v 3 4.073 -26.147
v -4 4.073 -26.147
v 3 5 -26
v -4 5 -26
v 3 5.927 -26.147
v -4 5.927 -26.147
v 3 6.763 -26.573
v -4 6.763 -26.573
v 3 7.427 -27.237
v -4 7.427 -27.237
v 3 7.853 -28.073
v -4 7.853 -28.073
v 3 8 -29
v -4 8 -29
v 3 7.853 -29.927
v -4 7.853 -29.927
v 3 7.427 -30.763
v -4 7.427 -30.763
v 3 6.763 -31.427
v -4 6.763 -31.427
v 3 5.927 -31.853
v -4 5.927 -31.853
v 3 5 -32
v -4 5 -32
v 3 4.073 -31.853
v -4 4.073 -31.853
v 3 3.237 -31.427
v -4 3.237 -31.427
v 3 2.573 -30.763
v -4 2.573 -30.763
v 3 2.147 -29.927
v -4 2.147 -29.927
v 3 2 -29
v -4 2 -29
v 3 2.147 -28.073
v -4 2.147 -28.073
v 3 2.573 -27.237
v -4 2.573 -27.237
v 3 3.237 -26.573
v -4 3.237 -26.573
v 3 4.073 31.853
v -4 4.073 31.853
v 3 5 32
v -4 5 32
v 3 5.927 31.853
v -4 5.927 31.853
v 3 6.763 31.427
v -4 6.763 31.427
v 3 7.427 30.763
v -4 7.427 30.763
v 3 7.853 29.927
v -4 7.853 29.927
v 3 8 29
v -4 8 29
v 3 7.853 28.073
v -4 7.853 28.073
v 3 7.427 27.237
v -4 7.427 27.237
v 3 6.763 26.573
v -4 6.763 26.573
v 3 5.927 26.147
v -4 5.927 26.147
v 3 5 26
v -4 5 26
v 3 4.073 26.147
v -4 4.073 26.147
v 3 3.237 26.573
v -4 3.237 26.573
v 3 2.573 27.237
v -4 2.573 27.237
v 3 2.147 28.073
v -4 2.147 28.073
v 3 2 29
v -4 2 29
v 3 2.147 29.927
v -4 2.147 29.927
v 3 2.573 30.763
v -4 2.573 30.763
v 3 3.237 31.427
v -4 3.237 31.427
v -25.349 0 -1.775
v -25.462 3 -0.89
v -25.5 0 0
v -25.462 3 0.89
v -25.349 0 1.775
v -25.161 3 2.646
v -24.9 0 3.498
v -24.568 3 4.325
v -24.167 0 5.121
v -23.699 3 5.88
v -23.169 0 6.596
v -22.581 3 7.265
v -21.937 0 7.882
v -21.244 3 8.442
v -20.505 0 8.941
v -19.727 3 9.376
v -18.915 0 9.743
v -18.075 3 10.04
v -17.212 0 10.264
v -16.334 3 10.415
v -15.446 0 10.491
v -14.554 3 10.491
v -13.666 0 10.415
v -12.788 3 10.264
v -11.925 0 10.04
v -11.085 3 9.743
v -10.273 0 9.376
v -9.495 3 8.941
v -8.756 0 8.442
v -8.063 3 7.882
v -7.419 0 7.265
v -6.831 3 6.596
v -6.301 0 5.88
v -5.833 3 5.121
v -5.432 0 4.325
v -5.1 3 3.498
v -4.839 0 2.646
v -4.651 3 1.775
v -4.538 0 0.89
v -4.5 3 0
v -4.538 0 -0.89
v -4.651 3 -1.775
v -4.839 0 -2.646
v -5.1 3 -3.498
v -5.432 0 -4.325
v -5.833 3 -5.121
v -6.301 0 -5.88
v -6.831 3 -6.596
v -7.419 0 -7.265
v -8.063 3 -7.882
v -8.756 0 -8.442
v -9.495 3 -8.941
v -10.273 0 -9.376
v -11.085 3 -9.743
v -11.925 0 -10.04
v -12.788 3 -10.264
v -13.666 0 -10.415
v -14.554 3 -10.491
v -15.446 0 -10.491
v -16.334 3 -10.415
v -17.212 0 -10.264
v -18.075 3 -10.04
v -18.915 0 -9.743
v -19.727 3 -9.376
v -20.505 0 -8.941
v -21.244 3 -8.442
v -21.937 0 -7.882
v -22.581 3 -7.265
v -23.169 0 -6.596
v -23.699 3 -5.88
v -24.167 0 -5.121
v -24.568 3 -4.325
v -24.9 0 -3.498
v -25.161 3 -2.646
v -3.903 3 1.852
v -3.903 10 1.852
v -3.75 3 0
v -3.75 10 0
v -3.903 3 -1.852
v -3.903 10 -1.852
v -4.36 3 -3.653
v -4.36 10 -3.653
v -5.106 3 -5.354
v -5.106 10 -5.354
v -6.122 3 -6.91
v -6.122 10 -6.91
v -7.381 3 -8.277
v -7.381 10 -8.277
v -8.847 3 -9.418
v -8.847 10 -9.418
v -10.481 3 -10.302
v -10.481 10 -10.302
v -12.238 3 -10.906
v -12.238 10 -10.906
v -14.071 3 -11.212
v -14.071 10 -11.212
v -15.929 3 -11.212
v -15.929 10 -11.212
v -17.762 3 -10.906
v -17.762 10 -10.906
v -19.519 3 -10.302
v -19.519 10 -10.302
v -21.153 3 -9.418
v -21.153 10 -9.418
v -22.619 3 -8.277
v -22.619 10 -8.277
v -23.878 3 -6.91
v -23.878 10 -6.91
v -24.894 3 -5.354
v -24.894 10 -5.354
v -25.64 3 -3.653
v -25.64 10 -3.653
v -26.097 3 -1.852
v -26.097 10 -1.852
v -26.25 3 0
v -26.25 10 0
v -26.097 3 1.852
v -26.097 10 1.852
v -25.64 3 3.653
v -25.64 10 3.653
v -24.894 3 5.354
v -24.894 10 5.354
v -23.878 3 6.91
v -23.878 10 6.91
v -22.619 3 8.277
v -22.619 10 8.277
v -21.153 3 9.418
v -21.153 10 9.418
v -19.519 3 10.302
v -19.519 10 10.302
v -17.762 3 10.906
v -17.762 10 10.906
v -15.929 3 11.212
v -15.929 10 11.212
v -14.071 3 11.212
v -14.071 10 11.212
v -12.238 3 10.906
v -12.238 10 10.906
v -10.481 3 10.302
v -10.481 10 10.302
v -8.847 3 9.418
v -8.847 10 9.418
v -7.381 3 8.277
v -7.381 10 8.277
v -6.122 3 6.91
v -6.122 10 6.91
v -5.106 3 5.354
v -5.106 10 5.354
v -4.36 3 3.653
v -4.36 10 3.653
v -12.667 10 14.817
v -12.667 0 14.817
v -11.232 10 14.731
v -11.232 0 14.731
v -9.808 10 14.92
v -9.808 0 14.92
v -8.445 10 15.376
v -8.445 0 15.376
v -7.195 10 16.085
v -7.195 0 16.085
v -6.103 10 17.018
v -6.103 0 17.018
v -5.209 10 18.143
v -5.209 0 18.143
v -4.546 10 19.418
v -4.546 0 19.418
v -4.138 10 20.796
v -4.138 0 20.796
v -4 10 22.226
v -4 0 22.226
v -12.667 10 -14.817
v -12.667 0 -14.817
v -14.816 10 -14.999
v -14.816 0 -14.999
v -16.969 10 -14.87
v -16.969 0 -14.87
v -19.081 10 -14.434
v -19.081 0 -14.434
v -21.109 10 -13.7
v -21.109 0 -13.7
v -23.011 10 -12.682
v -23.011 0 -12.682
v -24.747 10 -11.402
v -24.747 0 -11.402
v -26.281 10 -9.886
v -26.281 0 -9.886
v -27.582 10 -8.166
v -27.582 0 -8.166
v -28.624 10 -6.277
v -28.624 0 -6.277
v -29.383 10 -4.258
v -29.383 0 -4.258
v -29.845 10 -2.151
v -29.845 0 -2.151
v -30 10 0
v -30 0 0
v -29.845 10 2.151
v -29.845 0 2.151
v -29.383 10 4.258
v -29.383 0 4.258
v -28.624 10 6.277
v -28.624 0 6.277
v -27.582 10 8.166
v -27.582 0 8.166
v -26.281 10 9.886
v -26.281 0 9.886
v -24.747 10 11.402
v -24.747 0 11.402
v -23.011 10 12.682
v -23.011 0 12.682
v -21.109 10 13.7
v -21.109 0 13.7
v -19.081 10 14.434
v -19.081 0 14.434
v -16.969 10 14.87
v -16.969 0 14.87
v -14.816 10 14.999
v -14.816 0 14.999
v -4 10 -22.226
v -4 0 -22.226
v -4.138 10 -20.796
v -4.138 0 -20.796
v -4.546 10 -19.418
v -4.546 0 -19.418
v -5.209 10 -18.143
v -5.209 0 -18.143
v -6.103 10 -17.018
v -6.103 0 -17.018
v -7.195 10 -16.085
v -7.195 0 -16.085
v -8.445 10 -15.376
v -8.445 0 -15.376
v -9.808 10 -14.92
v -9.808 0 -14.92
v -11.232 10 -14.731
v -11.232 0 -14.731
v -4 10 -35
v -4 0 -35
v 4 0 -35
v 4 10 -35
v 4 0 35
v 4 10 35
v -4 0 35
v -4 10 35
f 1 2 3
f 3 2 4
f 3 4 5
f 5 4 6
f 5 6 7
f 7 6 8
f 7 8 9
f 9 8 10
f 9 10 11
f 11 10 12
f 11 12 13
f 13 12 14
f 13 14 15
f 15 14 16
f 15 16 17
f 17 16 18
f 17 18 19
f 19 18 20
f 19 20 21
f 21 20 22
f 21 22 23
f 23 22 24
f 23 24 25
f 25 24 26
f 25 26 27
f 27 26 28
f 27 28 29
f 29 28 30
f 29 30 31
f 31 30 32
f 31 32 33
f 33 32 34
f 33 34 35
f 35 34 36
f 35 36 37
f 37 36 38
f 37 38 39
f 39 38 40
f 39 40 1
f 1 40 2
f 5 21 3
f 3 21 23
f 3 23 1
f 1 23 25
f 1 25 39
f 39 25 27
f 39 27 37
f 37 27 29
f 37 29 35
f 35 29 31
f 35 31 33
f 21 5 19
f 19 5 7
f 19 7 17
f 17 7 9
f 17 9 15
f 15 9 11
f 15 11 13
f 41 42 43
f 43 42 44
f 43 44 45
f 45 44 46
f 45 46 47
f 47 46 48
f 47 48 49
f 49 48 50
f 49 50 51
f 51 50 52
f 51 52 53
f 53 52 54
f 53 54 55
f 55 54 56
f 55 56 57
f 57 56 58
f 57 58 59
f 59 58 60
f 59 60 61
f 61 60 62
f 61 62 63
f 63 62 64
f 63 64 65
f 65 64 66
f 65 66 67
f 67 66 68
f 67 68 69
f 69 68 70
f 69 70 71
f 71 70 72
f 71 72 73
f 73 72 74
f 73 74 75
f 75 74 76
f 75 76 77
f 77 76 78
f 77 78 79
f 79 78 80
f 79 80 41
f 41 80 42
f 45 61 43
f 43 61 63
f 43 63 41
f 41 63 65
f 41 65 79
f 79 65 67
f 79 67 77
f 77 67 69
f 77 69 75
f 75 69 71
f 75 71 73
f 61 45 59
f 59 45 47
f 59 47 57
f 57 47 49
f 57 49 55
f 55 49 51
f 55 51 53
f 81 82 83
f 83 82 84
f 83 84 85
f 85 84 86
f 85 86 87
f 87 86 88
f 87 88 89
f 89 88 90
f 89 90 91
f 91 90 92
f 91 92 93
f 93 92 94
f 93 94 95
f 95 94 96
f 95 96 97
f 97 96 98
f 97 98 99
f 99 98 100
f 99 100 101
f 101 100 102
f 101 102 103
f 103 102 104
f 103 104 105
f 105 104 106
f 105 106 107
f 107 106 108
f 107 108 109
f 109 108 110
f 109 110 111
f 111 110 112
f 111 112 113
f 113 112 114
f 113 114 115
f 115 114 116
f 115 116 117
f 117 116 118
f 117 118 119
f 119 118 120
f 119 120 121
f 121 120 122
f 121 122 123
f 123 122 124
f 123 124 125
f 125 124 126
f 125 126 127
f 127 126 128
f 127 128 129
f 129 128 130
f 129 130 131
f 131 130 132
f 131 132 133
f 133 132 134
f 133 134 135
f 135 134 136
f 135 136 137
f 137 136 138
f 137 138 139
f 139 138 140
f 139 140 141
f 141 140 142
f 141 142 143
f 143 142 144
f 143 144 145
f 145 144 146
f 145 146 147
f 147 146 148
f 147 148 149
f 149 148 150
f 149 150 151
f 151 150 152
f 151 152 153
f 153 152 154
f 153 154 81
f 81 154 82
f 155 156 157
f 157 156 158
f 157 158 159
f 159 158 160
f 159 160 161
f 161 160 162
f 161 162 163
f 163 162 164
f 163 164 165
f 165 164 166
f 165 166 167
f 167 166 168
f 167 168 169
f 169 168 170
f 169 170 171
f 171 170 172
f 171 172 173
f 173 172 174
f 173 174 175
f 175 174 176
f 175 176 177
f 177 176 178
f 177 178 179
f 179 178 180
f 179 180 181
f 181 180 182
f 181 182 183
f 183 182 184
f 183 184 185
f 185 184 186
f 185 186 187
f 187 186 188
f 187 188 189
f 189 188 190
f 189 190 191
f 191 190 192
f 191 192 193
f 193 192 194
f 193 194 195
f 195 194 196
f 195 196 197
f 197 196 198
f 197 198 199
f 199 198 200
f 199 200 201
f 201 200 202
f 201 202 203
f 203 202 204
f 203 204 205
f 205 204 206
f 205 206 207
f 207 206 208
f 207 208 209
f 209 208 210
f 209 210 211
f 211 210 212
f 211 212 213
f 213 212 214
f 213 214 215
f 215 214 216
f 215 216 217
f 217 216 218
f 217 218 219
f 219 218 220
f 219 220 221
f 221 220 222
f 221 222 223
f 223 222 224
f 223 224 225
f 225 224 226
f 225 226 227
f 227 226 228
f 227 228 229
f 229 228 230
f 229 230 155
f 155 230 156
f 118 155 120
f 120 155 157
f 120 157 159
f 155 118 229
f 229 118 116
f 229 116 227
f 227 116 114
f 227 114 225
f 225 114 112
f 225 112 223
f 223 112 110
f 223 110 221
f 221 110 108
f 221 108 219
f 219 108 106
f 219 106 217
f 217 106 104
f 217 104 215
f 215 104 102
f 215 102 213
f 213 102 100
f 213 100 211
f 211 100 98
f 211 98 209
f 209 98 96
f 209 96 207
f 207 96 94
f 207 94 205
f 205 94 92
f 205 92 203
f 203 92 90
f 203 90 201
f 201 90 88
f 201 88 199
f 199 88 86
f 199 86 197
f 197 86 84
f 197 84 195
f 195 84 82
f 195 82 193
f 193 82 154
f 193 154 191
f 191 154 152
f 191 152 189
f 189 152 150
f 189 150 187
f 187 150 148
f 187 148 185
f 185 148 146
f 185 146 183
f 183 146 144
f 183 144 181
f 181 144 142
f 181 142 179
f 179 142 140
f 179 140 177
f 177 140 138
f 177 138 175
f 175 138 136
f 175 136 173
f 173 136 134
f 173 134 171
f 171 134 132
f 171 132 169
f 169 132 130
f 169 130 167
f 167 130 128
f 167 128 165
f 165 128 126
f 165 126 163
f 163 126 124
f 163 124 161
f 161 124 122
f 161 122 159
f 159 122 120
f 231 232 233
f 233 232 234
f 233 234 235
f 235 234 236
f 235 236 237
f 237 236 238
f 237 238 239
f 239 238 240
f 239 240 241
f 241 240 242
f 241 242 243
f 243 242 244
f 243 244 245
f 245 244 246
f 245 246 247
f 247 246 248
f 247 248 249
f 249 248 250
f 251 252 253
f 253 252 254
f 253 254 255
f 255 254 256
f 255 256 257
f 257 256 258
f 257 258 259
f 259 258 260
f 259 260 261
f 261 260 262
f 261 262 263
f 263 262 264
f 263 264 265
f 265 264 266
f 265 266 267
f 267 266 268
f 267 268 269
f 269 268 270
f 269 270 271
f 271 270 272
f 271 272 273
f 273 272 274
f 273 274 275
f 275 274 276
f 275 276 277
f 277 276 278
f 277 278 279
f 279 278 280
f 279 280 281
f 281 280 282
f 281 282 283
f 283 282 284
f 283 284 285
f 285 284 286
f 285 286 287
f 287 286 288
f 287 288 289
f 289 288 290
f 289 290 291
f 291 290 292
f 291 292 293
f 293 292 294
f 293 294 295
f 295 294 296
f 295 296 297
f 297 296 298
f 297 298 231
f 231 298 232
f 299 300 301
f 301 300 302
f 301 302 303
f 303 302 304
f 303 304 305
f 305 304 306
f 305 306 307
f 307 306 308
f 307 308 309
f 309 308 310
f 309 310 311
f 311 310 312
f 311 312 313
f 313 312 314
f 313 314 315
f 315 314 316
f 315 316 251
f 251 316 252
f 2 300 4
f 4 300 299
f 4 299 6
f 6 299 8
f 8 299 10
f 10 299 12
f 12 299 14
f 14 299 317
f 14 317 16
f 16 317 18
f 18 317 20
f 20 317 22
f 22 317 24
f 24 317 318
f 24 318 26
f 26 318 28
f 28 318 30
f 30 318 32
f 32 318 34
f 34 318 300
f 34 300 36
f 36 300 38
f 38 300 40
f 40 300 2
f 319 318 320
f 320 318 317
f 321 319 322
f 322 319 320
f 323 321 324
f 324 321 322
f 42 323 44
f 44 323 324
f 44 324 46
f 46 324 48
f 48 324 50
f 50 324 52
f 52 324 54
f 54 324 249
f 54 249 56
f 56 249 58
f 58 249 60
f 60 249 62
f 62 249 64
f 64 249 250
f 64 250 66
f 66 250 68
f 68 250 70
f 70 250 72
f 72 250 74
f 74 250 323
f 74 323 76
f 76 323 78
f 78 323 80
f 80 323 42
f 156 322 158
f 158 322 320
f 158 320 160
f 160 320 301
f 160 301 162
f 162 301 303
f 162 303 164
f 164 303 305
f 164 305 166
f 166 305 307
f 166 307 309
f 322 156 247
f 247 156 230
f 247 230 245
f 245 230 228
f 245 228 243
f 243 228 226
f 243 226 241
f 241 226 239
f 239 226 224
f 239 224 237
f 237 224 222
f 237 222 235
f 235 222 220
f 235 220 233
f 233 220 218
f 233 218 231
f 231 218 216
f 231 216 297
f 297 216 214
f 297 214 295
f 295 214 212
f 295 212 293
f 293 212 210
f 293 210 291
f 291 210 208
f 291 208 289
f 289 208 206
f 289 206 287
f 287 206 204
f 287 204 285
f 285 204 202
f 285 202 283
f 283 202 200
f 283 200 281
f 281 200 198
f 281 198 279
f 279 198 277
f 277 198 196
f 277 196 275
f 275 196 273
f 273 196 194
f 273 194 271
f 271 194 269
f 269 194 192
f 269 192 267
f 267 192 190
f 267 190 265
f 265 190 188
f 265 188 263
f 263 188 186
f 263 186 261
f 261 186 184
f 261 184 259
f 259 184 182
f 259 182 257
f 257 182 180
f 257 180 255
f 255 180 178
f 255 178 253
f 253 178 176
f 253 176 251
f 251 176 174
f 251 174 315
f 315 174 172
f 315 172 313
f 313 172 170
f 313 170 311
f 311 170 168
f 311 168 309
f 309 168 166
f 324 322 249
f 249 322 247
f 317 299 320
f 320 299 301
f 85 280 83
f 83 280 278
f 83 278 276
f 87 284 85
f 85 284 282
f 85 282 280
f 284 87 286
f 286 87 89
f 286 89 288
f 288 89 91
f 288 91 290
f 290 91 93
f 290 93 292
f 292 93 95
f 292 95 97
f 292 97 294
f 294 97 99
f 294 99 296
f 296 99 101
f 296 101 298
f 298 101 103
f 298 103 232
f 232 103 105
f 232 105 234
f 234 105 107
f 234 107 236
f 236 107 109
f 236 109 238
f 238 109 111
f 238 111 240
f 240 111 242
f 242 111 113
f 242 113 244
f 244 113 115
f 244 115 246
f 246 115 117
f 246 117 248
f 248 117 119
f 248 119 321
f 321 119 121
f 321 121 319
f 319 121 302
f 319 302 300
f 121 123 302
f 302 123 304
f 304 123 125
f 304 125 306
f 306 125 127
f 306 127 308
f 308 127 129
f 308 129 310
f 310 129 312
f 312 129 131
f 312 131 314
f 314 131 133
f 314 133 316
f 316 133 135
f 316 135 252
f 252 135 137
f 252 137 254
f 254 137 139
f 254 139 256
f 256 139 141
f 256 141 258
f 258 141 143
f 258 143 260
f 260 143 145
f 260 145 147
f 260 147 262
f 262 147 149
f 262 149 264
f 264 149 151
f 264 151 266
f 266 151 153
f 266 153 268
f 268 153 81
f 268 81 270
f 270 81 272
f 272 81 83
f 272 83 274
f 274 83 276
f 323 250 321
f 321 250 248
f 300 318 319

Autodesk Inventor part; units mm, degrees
ref_plane "YZ Plane" through (0, 0, 0) normal (1, 0, 0) x (0, 1, 0)
ref_plane "XZ Plane" through (0, 0, 0) normal (0, 1, 0) x (-1, 0, 0)
ref_plane "XY Plane" through (0, 0, 0) normal (0, 0, 1) x (1, 0, 0)
sketch "Sketch1" plane through (0, 0, 0) normal (0, 1, 0) x (-1, 0, 0)
  line L0 (4, 35) -> (-4, 35)
  line L1 (-4, 35) -> (-4, -35)
  line L2 (-4, -35) -> (4, -35)
  line L3 (4, -35) -> (4, 35)
  line L4 (4, 35) -> (-4, -35) construction
  line L5 (-4, 35) -> (4, -35) construction
  circle A0 centre (15, 0) radius 15
  arc A1 (4, 22.2261) -> (12.6667, 14.8174) centre (11.5, 22.2261) ccw
  arc A2 (12.6667, -14.8174) -> (4, -22.2261) centre (11.5, -22.2261) ccw
  point P0 (0, 0)
  dimension "d0" = 8
  dimension "d1" = 70
  dimension "d2" = 30
  dimension "d3" = 15
  dimension "d6" = 15
  dimension "d7" = 7.5
  dimension "d9" = 0
  dimension "d10" = 15
extrude "Extrusion1" add sketch "Sketch1" along normal blind 10
sketch "Sketch2" plane through (0, 10, 0) normal (0, 1, 0) x (1, 0, 0)
  circle A0 centre (-15, 0) radius 11.25
  arc A1 (-12.6667, 14.8174) -> (-12.6667, -14.8174) centre (-15, 0) ccw projected
  point P0 (0, 0)
  dimension "d13" = 22.5
extrude "Extrusion2" cut sketch "Sketch2" against normal blind 7
sketch "Sketch3" plane through (-15, 3, 0) normal (0, 1, 0) x (1, 0, 0)
  circle A0 centre (0, 0) radius 10.5
  point P0 (15, 0)
  dimension "d16" = 21
extrude "Extrusion3" cut sketch "Sketch3" against normal blind 7
sketch "Sketch4" plane through (-4, 0, 22.2261) normal (-1, 0, 0) x (0, 0, 1)
  circle A0 centre (6.7739, 5) radius 3
  line L0 (0, 0) -> (12.7739, 0) projected
  line L1 (12.7739, 0) -> (12.7739, 10) projected
  circle A1 centre (-51.2261, 5) radius 3
  line L2 (-57.2261, 10) -> (-44.4522, 10) projected
  line L3 (-57.2261, 0) -> (-57.2261, 10) projected
  point P0 (-22.2261, 0)
  point P1 (6.3869, 0)
  dimension "d19" = 6
  dimension "d20" = 5
  dimension "d21" = 6
  dimension "d22" = 6
  dimension "d23" = 5
  dimension "d24" = 6
extrude "Extrusion4" cut sketch "Sketch4" against normal blind 7
properties part number "Bearing Holder"
